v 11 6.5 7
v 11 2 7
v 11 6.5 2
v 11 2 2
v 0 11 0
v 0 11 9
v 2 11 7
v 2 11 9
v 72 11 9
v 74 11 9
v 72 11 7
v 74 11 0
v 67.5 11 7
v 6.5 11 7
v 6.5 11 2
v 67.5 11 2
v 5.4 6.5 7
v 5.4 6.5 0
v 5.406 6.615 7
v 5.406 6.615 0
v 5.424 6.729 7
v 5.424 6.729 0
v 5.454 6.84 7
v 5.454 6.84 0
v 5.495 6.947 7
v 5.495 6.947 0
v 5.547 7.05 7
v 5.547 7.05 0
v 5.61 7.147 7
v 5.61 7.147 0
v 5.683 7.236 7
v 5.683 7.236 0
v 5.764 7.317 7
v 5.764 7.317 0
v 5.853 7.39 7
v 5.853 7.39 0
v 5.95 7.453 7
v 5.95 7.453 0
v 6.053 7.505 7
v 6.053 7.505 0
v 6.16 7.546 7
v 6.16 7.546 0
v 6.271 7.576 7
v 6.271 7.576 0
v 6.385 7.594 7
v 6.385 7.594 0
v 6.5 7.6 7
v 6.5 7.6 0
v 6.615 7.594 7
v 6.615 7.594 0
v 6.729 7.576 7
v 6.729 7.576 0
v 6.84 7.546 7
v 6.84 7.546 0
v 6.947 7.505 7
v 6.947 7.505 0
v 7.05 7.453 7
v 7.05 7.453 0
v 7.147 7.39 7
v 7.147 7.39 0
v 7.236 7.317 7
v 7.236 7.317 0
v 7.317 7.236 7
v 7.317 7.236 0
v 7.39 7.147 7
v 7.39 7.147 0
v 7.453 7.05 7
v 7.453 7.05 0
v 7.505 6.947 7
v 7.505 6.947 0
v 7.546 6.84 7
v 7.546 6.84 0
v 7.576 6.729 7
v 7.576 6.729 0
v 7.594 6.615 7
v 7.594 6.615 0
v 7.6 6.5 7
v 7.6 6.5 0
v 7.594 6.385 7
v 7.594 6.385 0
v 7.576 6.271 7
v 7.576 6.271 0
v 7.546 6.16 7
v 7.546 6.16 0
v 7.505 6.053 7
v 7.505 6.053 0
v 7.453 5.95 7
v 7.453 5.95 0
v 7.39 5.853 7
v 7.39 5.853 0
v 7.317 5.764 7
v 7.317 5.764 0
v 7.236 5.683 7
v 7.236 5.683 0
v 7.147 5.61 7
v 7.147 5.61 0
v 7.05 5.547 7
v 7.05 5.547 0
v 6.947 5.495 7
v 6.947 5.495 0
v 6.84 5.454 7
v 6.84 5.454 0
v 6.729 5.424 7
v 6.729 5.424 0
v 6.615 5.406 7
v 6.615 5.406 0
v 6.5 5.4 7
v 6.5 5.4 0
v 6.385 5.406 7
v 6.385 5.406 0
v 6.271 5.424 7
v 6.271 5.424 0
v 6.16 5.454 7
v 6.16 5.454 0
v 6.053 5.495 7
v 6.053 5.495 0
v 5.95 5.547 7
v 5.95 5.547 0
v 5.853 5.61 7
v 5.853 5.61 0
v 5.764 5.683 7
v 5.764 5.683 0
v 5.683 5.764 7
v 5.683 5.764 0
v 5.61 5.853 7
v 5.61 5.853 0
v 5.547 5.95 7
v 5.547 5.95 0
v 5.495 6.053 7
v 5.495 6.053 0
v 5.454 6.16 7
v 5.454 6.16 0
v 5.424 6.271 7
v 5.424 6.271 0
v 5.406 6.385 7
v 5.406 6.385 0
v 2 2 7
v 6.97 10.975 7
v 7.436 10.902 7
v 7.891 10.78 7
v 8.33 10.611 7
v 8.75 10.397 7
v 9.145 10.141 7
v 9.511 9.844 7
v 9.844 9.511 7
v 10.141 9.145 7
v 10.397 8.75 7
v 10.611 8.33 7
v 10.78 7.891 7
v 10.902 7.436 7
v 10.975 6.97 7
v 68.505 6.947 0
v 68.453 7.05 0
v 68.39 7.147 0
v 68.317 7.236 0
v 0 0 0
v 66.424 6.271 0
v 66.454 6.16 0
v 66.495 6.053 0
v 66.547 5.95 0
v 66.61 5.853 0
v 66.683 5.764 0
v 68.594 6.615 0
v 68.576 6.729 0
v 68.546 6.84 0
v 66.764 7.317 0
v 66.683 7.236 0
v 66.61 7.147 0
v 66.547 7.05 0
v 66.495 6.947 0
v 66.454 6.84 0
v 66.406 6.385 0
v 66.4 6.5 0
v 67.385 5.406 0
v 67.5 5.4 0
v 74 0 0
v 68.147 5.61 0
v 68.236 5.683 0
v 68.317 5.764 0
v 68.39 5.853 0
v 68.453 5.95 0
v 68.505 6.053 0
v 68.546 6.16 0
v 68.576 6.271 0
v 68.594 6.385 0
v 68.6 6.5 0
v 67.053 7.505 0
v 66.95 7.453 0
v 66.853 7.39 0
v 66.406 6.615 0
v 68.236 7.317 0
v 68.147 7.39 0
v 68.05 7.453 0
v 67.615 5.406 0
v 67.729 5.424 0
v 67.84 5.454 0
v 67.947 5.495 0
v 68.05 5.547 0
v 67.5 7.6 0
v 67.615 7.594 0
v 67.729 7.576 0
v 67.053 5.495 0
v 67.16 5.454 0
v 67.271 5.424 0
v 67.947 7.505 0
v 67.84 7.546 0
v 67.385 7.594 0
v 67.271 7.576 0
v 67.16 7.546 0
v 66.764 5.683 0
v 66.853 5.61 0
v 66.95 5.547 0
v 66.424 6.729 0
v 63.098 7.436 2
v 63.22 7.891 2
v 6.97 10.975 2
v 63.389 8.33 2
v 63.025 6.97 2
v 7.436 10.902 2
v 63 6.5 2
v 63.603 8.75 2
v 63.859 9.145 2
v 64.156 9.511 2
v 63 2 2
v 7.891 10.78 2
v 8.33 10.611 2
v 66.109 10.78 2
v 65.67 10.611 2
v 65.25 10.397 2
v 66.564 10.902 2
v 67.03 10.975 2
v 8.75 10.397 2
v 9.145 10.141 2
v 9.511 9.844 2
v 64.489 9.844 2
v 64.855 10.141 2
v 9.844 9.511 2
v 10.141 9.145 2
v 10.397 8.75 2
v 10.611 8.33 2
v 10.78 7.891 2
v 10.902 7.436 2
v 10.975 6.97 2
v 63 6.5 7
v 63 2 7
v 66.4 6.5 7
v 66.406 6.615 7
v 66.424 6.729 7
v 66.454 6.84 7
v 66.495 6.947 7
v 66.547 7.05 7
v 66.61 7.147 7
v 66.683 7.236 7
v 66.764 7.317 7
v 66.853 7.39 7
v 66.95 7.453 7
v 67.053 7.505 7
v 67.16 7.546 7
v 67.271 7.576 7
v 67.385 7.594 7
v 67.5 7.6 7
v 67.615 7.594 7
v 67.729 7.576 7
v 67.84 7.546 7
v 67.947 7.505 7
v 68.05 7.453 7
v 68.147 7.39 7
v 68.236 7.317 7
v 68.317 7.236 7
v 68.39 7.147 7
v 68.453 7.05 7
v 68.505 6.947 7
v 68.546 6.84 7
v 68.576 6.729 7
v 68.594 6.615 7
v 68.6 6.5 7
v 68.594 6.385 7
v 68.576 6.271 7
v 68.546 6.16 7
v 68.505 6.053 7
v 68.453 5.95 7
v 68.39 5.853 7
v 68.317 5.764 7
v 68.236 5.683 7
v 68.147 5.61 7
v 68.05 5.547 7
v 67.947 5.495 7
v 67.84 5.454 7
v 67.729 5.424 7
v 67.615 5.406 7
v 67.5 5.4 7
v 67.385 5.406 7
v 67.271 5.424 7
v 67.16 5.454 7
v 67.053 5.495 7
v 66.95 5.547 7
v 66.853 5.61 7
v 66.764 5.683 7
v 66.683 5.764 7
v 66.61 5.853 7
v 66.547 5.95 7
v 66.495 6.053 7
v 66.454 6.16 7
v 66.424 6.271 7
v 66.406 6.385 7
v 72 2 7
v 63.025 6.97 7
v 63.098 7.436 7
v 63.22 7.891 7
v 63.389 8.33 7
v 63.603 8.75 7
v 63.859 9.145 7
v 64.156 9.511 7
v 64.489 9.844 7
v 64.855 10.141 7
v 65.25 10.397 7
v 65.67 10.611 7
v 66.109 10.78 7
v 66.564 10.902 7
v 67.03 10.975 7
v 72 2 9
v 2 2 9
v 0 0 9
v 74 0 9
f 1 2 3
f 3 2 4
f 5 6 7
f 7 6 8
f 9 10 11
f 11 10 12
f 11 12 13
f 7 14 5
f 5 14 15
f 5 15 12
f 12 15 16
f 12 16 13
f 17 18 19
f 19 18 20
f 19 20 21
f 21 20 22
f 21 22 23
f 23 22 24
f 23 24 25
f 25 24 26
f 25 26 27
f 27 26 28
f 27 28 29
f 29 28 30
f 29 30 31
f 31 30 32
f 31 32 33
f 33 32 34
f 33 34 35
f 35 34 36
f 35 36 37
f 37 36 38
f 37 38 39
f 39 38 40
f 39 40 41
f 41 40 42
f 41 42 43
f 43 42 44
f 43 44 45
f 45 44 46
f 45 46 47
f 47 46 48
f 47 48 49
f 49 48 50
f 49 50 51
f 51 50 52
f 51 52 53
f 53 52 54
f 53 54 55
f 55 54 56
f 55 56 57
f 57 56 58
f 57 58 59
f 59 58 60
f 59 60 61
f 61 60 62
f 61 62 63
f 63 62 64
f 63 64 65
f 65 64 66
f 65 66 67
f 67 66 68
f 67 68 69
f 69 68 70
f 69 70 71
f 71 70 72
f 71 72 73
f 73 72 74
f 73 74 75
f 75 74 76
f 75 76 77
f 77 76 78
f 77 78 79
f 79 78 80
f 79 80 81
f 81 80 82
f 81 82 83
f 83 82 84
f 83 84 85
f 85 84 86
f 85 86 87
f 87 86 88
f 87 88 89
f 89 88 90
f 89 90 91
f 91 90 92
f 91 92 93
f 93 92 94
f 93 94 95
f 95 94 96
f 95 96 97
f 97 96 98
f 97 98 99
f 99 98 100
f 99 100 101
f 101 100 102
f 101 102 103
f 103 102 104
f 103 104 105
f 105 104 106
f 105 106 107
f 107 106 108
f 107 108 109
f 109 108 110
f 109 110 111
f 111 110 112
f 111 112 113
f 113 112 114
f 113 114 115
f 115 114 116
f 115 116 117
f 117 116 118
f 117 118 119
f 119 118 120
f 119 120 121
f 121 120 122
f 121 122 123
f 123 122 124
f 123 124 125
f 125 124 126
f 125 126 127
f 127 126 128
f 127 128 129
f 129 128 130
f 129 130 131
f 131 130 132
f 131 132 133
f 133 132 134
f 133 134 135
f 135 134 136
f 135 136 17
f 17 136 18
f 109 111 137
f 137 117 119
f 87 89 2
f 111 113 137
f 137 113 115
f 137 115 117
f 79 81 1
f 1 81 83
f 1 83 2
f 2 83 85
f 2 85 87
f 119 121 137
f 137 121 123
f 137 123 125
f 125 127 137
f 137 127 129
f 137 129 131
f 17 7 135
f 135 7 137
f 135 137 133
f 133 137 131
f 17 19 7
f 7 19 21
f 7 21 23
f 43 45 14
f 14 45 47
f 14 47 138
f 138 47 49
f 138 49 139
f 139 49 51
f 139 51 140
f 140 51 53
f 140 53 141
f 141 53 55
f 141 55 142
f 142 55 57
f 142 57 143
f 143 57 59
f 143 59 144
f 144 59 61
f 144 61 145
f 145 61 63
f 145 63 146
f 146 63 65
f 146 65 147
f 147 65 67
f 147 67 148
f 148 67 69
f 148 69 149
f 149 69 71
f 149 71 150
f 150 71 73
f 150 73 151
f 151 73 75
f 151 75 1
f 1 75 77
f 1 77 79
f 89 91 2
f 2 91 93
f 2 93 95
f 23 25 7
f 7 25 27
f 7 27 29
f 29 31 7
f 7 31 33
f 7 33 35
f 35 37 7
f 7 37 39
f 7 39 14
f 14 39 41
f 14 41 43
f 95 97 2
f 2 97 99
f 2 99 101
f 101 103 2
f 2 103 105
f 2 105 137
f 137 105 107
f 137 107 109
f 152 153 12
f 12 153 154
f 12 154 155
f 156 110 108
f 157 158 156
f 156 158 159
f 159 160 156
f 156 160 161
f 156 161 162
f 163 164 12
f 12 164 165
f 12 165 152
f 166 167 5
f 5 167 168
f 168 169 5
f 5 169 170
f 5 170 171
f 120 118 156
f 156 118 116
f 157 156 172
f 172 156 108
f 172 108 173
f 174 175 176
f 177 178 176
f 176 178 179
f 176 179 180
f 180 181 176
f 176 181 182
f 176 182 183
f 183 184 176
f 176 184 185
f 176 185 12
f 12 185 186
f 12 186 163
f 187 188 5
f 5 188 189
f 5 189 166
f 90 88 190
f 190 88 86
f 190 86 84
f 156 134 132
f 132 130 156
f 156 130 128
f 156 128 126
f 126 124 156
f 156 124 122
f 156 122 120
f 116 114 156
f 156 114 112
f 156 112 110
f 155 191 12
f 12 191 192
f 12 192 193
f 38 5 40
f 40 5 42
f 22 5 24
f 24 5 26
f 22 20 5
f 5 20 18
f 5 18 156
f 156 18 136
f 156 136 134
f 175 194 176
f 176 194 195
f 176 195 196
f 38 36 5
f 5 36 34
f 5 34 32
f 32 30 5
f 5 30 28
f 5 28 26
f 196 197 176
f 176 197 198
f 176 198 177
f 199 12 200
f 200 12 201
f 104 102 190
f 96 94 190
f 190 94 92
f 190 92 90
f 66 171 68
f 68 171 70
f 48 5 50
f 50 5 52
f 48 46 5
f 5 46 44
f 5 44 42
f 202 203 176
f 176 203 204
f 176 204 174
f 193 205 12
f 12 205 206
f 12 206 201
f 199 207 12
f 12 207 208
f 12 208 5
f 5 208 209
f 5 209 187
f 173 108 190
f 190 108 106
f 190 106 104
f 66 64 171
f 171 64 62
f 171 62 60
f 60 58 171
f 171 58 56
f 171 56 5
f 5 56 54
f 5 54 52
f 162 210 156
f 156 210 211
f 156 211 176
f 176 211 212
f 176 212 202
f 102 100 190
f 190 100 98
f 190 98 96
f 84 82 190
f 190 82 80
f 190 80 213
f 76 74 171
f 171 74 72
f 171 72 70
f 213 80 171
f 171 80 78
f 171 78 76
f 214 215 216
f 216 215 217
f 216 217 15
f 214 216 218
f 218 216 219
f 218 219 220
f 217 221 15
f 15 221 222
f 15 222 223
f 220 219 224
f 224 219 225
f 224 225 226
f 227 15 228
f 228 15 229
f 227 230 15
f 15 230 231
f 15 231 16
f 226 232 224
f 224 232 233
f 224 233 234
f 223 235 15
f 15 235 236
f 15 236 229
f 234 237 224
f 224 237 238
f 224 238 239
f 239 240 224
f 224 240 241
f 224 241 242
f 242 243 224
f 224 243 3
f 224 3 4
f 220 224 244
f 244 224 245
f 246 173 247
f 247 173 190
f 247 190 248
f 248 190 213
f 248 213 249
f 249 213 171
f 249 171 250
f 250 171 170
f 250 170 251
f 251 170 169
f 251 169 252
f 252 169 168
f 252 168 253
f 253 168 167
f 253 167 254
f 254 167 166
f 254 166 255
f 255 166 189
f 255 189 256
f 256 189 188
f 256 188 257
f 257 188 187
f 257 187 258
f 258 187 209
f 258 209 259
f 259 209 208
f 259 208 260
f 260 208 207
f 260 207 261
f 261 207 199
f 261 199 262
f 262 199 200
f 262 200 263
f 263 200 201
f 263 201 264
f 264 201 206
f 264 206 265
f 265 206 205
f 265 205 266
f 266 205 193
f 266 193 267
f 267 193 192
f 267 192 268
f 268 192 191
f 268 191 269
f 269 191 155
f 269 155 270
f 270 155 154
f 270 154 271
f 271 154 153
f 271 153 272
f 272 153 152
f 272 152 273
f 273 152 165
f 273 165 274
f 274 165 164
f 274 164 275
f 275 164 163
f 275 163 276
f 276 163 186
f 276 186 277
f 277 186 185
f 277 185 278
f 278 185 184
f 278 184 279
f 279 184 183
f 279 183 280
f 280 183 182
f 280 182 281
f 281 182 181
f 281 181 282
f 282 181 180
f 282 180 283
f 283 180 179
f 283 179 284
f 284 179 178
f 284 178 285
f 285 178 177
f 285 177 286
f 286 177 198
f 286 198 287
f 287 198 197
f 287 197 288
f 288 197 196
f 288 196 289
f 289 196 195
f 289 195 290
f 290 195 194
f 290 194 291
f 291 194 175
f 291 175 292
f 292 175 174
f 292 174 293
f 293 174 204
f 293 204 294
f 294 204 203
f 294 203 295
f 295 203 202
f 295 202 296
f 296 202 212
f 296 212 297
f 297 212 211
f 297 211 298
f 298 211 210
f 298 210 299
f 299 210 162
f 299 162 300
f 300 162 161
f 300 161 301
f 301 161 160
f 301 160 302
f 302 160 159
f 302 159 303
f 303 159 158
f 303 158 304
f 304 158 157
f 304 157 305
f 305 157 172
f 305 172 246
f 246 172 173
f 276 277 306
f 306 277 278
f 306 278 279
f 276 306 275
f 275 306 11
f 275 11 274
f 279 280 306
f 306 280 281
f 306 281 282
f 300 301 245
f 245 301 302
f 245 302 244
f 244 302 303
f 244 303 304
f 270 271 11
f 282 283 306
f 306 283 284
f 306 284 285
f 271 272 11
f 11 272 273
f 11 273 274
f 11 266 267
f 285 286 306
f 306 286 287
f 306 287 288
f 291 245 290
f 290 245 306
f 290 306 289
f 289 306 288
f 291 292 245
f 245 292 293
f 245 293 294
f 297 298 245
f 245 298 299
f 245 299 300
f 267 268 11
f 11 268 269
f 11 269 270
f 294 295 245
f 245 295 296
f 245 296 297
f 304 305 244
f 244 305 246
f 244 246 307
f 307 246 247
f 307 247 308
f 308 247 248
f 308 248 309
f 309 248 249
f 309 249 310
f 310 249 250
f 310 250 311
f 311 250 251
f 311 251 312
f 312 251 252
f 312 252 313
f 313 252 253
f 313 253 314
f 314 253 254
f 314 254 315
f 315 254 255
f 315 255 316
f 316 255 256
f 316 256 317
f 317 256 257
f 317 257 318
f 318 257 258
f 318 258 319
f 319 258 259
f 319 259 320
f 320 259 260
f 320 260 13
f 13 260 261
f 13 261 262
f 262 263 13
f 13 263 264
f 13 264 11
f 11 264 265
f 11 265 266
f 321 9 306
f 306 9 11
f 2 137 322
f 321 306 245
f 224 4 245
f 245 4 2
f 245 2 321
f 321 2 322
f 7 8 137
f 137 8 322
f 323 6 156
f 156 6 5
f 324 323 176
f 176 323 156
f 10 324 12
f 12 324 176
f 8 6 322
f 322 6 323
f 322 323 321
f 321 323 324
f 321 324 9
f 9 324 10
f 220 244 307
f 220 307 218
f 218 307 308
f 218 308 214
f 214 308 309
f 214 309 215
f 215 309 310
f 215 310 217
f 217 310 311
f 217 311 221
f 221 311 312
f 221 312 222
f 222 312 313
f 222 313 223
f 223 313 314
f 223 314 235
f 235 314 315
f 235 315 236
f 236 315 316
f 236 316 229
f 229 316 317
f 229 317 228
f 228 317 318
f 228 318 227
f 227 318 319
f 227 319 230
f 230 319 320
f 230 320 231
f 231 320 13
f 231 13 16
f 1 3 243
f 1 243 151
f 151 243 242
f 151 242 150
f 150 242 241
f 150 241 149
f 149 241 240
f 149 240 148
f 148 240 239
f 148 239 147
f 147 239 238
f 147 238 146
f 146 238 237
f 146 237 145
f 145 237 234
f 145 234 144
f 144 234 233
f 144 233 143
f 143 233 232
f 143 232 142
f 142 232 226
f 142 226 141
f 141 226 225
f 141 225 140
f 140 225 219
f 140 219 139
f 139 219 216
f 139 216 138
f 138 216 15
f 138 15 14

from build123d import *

# Parameters (mm, degrees)
SKETCH_1_W        = 9
SKETCH_1_H        = 9
SKETCH_1_R        = 1.1
EXTRUDE_1_DEPTH   = 7
EXTRUDE_1_2_DEPTH = 7
SKETCH_1_3_W      = 52
SKETCH_1_3_H      = 9
EXTRUDE_2_DEPTH   = 2
EXTRUDE_3_DEPTH   = 9
FILLET_1_R        = 4.5


with BuildPart() as part:
    # Эскиз1 → Бобышка-Вытянуть1 (new body)
    with BuildSketch(Plane.XY):
        with Locations((6.5, 6.5)):
            Rectangle(SKETCH_1_W, SKETCH_1_H)
        with Locations((6.5, 6.5)):
            Circle(SKETCH_1_R, mode=Mode.SUBTRACT)
    extrude(amount=EXTRUDE_1_DEPTH)



with BuildPart() as body_2:
    # Эскиз1 → Extrude 1 2 (new body)
    with BuildSketch(Plane.XY):
        with Locations((67.5, 6.5)):
            Rectangle(SKETCH_1_W, SKETCH_1_H)
        with Locations((67.5, 6.5)):
            Circle(SKETCH_1_R, mode=Mode.SUBTRACT)
    extrude(amount=EXTRUDE_1_2_DEPTH)


with BuildPart() as part_1:
    add(part.part)

    add(body_2.part)  # Бобышка-Вытянуть2 merges body 2
    # Эскиз1<3> → Бобышка-Вытянуть2 (add)
    with BuildSketch(Plane.XY):
        with Locations((37, 6.5)):
            Rectangle(SKETCH_1_3_W, SKETCH_1_3_H)
    extrude(amount=EXTRUDE_2_DEPTH)

    # Эскиз1<4> → Бобышка-Вытянуть3 (add)
    with BuildSketch(Plane.XY):
        Polygon((0, 11), (0, 0), (74, 0), (74, 11), (72, 11), (72, 2), (63, 2), (11, 2), (2, 2), (2, 11), align=None)
    extrude(amount=EXTRUDE_3_DEPTH)

    # Скругление1
    fillet_1_edges = [part_1.edges().sort_by_distance(p)[0] for p in [
        (11, 11, 4.5),
        (63, 11, 4.5),
    ]]
    fillet(fillet_1_edges, radius=FILLET_1_R)


solid = part_1.part
